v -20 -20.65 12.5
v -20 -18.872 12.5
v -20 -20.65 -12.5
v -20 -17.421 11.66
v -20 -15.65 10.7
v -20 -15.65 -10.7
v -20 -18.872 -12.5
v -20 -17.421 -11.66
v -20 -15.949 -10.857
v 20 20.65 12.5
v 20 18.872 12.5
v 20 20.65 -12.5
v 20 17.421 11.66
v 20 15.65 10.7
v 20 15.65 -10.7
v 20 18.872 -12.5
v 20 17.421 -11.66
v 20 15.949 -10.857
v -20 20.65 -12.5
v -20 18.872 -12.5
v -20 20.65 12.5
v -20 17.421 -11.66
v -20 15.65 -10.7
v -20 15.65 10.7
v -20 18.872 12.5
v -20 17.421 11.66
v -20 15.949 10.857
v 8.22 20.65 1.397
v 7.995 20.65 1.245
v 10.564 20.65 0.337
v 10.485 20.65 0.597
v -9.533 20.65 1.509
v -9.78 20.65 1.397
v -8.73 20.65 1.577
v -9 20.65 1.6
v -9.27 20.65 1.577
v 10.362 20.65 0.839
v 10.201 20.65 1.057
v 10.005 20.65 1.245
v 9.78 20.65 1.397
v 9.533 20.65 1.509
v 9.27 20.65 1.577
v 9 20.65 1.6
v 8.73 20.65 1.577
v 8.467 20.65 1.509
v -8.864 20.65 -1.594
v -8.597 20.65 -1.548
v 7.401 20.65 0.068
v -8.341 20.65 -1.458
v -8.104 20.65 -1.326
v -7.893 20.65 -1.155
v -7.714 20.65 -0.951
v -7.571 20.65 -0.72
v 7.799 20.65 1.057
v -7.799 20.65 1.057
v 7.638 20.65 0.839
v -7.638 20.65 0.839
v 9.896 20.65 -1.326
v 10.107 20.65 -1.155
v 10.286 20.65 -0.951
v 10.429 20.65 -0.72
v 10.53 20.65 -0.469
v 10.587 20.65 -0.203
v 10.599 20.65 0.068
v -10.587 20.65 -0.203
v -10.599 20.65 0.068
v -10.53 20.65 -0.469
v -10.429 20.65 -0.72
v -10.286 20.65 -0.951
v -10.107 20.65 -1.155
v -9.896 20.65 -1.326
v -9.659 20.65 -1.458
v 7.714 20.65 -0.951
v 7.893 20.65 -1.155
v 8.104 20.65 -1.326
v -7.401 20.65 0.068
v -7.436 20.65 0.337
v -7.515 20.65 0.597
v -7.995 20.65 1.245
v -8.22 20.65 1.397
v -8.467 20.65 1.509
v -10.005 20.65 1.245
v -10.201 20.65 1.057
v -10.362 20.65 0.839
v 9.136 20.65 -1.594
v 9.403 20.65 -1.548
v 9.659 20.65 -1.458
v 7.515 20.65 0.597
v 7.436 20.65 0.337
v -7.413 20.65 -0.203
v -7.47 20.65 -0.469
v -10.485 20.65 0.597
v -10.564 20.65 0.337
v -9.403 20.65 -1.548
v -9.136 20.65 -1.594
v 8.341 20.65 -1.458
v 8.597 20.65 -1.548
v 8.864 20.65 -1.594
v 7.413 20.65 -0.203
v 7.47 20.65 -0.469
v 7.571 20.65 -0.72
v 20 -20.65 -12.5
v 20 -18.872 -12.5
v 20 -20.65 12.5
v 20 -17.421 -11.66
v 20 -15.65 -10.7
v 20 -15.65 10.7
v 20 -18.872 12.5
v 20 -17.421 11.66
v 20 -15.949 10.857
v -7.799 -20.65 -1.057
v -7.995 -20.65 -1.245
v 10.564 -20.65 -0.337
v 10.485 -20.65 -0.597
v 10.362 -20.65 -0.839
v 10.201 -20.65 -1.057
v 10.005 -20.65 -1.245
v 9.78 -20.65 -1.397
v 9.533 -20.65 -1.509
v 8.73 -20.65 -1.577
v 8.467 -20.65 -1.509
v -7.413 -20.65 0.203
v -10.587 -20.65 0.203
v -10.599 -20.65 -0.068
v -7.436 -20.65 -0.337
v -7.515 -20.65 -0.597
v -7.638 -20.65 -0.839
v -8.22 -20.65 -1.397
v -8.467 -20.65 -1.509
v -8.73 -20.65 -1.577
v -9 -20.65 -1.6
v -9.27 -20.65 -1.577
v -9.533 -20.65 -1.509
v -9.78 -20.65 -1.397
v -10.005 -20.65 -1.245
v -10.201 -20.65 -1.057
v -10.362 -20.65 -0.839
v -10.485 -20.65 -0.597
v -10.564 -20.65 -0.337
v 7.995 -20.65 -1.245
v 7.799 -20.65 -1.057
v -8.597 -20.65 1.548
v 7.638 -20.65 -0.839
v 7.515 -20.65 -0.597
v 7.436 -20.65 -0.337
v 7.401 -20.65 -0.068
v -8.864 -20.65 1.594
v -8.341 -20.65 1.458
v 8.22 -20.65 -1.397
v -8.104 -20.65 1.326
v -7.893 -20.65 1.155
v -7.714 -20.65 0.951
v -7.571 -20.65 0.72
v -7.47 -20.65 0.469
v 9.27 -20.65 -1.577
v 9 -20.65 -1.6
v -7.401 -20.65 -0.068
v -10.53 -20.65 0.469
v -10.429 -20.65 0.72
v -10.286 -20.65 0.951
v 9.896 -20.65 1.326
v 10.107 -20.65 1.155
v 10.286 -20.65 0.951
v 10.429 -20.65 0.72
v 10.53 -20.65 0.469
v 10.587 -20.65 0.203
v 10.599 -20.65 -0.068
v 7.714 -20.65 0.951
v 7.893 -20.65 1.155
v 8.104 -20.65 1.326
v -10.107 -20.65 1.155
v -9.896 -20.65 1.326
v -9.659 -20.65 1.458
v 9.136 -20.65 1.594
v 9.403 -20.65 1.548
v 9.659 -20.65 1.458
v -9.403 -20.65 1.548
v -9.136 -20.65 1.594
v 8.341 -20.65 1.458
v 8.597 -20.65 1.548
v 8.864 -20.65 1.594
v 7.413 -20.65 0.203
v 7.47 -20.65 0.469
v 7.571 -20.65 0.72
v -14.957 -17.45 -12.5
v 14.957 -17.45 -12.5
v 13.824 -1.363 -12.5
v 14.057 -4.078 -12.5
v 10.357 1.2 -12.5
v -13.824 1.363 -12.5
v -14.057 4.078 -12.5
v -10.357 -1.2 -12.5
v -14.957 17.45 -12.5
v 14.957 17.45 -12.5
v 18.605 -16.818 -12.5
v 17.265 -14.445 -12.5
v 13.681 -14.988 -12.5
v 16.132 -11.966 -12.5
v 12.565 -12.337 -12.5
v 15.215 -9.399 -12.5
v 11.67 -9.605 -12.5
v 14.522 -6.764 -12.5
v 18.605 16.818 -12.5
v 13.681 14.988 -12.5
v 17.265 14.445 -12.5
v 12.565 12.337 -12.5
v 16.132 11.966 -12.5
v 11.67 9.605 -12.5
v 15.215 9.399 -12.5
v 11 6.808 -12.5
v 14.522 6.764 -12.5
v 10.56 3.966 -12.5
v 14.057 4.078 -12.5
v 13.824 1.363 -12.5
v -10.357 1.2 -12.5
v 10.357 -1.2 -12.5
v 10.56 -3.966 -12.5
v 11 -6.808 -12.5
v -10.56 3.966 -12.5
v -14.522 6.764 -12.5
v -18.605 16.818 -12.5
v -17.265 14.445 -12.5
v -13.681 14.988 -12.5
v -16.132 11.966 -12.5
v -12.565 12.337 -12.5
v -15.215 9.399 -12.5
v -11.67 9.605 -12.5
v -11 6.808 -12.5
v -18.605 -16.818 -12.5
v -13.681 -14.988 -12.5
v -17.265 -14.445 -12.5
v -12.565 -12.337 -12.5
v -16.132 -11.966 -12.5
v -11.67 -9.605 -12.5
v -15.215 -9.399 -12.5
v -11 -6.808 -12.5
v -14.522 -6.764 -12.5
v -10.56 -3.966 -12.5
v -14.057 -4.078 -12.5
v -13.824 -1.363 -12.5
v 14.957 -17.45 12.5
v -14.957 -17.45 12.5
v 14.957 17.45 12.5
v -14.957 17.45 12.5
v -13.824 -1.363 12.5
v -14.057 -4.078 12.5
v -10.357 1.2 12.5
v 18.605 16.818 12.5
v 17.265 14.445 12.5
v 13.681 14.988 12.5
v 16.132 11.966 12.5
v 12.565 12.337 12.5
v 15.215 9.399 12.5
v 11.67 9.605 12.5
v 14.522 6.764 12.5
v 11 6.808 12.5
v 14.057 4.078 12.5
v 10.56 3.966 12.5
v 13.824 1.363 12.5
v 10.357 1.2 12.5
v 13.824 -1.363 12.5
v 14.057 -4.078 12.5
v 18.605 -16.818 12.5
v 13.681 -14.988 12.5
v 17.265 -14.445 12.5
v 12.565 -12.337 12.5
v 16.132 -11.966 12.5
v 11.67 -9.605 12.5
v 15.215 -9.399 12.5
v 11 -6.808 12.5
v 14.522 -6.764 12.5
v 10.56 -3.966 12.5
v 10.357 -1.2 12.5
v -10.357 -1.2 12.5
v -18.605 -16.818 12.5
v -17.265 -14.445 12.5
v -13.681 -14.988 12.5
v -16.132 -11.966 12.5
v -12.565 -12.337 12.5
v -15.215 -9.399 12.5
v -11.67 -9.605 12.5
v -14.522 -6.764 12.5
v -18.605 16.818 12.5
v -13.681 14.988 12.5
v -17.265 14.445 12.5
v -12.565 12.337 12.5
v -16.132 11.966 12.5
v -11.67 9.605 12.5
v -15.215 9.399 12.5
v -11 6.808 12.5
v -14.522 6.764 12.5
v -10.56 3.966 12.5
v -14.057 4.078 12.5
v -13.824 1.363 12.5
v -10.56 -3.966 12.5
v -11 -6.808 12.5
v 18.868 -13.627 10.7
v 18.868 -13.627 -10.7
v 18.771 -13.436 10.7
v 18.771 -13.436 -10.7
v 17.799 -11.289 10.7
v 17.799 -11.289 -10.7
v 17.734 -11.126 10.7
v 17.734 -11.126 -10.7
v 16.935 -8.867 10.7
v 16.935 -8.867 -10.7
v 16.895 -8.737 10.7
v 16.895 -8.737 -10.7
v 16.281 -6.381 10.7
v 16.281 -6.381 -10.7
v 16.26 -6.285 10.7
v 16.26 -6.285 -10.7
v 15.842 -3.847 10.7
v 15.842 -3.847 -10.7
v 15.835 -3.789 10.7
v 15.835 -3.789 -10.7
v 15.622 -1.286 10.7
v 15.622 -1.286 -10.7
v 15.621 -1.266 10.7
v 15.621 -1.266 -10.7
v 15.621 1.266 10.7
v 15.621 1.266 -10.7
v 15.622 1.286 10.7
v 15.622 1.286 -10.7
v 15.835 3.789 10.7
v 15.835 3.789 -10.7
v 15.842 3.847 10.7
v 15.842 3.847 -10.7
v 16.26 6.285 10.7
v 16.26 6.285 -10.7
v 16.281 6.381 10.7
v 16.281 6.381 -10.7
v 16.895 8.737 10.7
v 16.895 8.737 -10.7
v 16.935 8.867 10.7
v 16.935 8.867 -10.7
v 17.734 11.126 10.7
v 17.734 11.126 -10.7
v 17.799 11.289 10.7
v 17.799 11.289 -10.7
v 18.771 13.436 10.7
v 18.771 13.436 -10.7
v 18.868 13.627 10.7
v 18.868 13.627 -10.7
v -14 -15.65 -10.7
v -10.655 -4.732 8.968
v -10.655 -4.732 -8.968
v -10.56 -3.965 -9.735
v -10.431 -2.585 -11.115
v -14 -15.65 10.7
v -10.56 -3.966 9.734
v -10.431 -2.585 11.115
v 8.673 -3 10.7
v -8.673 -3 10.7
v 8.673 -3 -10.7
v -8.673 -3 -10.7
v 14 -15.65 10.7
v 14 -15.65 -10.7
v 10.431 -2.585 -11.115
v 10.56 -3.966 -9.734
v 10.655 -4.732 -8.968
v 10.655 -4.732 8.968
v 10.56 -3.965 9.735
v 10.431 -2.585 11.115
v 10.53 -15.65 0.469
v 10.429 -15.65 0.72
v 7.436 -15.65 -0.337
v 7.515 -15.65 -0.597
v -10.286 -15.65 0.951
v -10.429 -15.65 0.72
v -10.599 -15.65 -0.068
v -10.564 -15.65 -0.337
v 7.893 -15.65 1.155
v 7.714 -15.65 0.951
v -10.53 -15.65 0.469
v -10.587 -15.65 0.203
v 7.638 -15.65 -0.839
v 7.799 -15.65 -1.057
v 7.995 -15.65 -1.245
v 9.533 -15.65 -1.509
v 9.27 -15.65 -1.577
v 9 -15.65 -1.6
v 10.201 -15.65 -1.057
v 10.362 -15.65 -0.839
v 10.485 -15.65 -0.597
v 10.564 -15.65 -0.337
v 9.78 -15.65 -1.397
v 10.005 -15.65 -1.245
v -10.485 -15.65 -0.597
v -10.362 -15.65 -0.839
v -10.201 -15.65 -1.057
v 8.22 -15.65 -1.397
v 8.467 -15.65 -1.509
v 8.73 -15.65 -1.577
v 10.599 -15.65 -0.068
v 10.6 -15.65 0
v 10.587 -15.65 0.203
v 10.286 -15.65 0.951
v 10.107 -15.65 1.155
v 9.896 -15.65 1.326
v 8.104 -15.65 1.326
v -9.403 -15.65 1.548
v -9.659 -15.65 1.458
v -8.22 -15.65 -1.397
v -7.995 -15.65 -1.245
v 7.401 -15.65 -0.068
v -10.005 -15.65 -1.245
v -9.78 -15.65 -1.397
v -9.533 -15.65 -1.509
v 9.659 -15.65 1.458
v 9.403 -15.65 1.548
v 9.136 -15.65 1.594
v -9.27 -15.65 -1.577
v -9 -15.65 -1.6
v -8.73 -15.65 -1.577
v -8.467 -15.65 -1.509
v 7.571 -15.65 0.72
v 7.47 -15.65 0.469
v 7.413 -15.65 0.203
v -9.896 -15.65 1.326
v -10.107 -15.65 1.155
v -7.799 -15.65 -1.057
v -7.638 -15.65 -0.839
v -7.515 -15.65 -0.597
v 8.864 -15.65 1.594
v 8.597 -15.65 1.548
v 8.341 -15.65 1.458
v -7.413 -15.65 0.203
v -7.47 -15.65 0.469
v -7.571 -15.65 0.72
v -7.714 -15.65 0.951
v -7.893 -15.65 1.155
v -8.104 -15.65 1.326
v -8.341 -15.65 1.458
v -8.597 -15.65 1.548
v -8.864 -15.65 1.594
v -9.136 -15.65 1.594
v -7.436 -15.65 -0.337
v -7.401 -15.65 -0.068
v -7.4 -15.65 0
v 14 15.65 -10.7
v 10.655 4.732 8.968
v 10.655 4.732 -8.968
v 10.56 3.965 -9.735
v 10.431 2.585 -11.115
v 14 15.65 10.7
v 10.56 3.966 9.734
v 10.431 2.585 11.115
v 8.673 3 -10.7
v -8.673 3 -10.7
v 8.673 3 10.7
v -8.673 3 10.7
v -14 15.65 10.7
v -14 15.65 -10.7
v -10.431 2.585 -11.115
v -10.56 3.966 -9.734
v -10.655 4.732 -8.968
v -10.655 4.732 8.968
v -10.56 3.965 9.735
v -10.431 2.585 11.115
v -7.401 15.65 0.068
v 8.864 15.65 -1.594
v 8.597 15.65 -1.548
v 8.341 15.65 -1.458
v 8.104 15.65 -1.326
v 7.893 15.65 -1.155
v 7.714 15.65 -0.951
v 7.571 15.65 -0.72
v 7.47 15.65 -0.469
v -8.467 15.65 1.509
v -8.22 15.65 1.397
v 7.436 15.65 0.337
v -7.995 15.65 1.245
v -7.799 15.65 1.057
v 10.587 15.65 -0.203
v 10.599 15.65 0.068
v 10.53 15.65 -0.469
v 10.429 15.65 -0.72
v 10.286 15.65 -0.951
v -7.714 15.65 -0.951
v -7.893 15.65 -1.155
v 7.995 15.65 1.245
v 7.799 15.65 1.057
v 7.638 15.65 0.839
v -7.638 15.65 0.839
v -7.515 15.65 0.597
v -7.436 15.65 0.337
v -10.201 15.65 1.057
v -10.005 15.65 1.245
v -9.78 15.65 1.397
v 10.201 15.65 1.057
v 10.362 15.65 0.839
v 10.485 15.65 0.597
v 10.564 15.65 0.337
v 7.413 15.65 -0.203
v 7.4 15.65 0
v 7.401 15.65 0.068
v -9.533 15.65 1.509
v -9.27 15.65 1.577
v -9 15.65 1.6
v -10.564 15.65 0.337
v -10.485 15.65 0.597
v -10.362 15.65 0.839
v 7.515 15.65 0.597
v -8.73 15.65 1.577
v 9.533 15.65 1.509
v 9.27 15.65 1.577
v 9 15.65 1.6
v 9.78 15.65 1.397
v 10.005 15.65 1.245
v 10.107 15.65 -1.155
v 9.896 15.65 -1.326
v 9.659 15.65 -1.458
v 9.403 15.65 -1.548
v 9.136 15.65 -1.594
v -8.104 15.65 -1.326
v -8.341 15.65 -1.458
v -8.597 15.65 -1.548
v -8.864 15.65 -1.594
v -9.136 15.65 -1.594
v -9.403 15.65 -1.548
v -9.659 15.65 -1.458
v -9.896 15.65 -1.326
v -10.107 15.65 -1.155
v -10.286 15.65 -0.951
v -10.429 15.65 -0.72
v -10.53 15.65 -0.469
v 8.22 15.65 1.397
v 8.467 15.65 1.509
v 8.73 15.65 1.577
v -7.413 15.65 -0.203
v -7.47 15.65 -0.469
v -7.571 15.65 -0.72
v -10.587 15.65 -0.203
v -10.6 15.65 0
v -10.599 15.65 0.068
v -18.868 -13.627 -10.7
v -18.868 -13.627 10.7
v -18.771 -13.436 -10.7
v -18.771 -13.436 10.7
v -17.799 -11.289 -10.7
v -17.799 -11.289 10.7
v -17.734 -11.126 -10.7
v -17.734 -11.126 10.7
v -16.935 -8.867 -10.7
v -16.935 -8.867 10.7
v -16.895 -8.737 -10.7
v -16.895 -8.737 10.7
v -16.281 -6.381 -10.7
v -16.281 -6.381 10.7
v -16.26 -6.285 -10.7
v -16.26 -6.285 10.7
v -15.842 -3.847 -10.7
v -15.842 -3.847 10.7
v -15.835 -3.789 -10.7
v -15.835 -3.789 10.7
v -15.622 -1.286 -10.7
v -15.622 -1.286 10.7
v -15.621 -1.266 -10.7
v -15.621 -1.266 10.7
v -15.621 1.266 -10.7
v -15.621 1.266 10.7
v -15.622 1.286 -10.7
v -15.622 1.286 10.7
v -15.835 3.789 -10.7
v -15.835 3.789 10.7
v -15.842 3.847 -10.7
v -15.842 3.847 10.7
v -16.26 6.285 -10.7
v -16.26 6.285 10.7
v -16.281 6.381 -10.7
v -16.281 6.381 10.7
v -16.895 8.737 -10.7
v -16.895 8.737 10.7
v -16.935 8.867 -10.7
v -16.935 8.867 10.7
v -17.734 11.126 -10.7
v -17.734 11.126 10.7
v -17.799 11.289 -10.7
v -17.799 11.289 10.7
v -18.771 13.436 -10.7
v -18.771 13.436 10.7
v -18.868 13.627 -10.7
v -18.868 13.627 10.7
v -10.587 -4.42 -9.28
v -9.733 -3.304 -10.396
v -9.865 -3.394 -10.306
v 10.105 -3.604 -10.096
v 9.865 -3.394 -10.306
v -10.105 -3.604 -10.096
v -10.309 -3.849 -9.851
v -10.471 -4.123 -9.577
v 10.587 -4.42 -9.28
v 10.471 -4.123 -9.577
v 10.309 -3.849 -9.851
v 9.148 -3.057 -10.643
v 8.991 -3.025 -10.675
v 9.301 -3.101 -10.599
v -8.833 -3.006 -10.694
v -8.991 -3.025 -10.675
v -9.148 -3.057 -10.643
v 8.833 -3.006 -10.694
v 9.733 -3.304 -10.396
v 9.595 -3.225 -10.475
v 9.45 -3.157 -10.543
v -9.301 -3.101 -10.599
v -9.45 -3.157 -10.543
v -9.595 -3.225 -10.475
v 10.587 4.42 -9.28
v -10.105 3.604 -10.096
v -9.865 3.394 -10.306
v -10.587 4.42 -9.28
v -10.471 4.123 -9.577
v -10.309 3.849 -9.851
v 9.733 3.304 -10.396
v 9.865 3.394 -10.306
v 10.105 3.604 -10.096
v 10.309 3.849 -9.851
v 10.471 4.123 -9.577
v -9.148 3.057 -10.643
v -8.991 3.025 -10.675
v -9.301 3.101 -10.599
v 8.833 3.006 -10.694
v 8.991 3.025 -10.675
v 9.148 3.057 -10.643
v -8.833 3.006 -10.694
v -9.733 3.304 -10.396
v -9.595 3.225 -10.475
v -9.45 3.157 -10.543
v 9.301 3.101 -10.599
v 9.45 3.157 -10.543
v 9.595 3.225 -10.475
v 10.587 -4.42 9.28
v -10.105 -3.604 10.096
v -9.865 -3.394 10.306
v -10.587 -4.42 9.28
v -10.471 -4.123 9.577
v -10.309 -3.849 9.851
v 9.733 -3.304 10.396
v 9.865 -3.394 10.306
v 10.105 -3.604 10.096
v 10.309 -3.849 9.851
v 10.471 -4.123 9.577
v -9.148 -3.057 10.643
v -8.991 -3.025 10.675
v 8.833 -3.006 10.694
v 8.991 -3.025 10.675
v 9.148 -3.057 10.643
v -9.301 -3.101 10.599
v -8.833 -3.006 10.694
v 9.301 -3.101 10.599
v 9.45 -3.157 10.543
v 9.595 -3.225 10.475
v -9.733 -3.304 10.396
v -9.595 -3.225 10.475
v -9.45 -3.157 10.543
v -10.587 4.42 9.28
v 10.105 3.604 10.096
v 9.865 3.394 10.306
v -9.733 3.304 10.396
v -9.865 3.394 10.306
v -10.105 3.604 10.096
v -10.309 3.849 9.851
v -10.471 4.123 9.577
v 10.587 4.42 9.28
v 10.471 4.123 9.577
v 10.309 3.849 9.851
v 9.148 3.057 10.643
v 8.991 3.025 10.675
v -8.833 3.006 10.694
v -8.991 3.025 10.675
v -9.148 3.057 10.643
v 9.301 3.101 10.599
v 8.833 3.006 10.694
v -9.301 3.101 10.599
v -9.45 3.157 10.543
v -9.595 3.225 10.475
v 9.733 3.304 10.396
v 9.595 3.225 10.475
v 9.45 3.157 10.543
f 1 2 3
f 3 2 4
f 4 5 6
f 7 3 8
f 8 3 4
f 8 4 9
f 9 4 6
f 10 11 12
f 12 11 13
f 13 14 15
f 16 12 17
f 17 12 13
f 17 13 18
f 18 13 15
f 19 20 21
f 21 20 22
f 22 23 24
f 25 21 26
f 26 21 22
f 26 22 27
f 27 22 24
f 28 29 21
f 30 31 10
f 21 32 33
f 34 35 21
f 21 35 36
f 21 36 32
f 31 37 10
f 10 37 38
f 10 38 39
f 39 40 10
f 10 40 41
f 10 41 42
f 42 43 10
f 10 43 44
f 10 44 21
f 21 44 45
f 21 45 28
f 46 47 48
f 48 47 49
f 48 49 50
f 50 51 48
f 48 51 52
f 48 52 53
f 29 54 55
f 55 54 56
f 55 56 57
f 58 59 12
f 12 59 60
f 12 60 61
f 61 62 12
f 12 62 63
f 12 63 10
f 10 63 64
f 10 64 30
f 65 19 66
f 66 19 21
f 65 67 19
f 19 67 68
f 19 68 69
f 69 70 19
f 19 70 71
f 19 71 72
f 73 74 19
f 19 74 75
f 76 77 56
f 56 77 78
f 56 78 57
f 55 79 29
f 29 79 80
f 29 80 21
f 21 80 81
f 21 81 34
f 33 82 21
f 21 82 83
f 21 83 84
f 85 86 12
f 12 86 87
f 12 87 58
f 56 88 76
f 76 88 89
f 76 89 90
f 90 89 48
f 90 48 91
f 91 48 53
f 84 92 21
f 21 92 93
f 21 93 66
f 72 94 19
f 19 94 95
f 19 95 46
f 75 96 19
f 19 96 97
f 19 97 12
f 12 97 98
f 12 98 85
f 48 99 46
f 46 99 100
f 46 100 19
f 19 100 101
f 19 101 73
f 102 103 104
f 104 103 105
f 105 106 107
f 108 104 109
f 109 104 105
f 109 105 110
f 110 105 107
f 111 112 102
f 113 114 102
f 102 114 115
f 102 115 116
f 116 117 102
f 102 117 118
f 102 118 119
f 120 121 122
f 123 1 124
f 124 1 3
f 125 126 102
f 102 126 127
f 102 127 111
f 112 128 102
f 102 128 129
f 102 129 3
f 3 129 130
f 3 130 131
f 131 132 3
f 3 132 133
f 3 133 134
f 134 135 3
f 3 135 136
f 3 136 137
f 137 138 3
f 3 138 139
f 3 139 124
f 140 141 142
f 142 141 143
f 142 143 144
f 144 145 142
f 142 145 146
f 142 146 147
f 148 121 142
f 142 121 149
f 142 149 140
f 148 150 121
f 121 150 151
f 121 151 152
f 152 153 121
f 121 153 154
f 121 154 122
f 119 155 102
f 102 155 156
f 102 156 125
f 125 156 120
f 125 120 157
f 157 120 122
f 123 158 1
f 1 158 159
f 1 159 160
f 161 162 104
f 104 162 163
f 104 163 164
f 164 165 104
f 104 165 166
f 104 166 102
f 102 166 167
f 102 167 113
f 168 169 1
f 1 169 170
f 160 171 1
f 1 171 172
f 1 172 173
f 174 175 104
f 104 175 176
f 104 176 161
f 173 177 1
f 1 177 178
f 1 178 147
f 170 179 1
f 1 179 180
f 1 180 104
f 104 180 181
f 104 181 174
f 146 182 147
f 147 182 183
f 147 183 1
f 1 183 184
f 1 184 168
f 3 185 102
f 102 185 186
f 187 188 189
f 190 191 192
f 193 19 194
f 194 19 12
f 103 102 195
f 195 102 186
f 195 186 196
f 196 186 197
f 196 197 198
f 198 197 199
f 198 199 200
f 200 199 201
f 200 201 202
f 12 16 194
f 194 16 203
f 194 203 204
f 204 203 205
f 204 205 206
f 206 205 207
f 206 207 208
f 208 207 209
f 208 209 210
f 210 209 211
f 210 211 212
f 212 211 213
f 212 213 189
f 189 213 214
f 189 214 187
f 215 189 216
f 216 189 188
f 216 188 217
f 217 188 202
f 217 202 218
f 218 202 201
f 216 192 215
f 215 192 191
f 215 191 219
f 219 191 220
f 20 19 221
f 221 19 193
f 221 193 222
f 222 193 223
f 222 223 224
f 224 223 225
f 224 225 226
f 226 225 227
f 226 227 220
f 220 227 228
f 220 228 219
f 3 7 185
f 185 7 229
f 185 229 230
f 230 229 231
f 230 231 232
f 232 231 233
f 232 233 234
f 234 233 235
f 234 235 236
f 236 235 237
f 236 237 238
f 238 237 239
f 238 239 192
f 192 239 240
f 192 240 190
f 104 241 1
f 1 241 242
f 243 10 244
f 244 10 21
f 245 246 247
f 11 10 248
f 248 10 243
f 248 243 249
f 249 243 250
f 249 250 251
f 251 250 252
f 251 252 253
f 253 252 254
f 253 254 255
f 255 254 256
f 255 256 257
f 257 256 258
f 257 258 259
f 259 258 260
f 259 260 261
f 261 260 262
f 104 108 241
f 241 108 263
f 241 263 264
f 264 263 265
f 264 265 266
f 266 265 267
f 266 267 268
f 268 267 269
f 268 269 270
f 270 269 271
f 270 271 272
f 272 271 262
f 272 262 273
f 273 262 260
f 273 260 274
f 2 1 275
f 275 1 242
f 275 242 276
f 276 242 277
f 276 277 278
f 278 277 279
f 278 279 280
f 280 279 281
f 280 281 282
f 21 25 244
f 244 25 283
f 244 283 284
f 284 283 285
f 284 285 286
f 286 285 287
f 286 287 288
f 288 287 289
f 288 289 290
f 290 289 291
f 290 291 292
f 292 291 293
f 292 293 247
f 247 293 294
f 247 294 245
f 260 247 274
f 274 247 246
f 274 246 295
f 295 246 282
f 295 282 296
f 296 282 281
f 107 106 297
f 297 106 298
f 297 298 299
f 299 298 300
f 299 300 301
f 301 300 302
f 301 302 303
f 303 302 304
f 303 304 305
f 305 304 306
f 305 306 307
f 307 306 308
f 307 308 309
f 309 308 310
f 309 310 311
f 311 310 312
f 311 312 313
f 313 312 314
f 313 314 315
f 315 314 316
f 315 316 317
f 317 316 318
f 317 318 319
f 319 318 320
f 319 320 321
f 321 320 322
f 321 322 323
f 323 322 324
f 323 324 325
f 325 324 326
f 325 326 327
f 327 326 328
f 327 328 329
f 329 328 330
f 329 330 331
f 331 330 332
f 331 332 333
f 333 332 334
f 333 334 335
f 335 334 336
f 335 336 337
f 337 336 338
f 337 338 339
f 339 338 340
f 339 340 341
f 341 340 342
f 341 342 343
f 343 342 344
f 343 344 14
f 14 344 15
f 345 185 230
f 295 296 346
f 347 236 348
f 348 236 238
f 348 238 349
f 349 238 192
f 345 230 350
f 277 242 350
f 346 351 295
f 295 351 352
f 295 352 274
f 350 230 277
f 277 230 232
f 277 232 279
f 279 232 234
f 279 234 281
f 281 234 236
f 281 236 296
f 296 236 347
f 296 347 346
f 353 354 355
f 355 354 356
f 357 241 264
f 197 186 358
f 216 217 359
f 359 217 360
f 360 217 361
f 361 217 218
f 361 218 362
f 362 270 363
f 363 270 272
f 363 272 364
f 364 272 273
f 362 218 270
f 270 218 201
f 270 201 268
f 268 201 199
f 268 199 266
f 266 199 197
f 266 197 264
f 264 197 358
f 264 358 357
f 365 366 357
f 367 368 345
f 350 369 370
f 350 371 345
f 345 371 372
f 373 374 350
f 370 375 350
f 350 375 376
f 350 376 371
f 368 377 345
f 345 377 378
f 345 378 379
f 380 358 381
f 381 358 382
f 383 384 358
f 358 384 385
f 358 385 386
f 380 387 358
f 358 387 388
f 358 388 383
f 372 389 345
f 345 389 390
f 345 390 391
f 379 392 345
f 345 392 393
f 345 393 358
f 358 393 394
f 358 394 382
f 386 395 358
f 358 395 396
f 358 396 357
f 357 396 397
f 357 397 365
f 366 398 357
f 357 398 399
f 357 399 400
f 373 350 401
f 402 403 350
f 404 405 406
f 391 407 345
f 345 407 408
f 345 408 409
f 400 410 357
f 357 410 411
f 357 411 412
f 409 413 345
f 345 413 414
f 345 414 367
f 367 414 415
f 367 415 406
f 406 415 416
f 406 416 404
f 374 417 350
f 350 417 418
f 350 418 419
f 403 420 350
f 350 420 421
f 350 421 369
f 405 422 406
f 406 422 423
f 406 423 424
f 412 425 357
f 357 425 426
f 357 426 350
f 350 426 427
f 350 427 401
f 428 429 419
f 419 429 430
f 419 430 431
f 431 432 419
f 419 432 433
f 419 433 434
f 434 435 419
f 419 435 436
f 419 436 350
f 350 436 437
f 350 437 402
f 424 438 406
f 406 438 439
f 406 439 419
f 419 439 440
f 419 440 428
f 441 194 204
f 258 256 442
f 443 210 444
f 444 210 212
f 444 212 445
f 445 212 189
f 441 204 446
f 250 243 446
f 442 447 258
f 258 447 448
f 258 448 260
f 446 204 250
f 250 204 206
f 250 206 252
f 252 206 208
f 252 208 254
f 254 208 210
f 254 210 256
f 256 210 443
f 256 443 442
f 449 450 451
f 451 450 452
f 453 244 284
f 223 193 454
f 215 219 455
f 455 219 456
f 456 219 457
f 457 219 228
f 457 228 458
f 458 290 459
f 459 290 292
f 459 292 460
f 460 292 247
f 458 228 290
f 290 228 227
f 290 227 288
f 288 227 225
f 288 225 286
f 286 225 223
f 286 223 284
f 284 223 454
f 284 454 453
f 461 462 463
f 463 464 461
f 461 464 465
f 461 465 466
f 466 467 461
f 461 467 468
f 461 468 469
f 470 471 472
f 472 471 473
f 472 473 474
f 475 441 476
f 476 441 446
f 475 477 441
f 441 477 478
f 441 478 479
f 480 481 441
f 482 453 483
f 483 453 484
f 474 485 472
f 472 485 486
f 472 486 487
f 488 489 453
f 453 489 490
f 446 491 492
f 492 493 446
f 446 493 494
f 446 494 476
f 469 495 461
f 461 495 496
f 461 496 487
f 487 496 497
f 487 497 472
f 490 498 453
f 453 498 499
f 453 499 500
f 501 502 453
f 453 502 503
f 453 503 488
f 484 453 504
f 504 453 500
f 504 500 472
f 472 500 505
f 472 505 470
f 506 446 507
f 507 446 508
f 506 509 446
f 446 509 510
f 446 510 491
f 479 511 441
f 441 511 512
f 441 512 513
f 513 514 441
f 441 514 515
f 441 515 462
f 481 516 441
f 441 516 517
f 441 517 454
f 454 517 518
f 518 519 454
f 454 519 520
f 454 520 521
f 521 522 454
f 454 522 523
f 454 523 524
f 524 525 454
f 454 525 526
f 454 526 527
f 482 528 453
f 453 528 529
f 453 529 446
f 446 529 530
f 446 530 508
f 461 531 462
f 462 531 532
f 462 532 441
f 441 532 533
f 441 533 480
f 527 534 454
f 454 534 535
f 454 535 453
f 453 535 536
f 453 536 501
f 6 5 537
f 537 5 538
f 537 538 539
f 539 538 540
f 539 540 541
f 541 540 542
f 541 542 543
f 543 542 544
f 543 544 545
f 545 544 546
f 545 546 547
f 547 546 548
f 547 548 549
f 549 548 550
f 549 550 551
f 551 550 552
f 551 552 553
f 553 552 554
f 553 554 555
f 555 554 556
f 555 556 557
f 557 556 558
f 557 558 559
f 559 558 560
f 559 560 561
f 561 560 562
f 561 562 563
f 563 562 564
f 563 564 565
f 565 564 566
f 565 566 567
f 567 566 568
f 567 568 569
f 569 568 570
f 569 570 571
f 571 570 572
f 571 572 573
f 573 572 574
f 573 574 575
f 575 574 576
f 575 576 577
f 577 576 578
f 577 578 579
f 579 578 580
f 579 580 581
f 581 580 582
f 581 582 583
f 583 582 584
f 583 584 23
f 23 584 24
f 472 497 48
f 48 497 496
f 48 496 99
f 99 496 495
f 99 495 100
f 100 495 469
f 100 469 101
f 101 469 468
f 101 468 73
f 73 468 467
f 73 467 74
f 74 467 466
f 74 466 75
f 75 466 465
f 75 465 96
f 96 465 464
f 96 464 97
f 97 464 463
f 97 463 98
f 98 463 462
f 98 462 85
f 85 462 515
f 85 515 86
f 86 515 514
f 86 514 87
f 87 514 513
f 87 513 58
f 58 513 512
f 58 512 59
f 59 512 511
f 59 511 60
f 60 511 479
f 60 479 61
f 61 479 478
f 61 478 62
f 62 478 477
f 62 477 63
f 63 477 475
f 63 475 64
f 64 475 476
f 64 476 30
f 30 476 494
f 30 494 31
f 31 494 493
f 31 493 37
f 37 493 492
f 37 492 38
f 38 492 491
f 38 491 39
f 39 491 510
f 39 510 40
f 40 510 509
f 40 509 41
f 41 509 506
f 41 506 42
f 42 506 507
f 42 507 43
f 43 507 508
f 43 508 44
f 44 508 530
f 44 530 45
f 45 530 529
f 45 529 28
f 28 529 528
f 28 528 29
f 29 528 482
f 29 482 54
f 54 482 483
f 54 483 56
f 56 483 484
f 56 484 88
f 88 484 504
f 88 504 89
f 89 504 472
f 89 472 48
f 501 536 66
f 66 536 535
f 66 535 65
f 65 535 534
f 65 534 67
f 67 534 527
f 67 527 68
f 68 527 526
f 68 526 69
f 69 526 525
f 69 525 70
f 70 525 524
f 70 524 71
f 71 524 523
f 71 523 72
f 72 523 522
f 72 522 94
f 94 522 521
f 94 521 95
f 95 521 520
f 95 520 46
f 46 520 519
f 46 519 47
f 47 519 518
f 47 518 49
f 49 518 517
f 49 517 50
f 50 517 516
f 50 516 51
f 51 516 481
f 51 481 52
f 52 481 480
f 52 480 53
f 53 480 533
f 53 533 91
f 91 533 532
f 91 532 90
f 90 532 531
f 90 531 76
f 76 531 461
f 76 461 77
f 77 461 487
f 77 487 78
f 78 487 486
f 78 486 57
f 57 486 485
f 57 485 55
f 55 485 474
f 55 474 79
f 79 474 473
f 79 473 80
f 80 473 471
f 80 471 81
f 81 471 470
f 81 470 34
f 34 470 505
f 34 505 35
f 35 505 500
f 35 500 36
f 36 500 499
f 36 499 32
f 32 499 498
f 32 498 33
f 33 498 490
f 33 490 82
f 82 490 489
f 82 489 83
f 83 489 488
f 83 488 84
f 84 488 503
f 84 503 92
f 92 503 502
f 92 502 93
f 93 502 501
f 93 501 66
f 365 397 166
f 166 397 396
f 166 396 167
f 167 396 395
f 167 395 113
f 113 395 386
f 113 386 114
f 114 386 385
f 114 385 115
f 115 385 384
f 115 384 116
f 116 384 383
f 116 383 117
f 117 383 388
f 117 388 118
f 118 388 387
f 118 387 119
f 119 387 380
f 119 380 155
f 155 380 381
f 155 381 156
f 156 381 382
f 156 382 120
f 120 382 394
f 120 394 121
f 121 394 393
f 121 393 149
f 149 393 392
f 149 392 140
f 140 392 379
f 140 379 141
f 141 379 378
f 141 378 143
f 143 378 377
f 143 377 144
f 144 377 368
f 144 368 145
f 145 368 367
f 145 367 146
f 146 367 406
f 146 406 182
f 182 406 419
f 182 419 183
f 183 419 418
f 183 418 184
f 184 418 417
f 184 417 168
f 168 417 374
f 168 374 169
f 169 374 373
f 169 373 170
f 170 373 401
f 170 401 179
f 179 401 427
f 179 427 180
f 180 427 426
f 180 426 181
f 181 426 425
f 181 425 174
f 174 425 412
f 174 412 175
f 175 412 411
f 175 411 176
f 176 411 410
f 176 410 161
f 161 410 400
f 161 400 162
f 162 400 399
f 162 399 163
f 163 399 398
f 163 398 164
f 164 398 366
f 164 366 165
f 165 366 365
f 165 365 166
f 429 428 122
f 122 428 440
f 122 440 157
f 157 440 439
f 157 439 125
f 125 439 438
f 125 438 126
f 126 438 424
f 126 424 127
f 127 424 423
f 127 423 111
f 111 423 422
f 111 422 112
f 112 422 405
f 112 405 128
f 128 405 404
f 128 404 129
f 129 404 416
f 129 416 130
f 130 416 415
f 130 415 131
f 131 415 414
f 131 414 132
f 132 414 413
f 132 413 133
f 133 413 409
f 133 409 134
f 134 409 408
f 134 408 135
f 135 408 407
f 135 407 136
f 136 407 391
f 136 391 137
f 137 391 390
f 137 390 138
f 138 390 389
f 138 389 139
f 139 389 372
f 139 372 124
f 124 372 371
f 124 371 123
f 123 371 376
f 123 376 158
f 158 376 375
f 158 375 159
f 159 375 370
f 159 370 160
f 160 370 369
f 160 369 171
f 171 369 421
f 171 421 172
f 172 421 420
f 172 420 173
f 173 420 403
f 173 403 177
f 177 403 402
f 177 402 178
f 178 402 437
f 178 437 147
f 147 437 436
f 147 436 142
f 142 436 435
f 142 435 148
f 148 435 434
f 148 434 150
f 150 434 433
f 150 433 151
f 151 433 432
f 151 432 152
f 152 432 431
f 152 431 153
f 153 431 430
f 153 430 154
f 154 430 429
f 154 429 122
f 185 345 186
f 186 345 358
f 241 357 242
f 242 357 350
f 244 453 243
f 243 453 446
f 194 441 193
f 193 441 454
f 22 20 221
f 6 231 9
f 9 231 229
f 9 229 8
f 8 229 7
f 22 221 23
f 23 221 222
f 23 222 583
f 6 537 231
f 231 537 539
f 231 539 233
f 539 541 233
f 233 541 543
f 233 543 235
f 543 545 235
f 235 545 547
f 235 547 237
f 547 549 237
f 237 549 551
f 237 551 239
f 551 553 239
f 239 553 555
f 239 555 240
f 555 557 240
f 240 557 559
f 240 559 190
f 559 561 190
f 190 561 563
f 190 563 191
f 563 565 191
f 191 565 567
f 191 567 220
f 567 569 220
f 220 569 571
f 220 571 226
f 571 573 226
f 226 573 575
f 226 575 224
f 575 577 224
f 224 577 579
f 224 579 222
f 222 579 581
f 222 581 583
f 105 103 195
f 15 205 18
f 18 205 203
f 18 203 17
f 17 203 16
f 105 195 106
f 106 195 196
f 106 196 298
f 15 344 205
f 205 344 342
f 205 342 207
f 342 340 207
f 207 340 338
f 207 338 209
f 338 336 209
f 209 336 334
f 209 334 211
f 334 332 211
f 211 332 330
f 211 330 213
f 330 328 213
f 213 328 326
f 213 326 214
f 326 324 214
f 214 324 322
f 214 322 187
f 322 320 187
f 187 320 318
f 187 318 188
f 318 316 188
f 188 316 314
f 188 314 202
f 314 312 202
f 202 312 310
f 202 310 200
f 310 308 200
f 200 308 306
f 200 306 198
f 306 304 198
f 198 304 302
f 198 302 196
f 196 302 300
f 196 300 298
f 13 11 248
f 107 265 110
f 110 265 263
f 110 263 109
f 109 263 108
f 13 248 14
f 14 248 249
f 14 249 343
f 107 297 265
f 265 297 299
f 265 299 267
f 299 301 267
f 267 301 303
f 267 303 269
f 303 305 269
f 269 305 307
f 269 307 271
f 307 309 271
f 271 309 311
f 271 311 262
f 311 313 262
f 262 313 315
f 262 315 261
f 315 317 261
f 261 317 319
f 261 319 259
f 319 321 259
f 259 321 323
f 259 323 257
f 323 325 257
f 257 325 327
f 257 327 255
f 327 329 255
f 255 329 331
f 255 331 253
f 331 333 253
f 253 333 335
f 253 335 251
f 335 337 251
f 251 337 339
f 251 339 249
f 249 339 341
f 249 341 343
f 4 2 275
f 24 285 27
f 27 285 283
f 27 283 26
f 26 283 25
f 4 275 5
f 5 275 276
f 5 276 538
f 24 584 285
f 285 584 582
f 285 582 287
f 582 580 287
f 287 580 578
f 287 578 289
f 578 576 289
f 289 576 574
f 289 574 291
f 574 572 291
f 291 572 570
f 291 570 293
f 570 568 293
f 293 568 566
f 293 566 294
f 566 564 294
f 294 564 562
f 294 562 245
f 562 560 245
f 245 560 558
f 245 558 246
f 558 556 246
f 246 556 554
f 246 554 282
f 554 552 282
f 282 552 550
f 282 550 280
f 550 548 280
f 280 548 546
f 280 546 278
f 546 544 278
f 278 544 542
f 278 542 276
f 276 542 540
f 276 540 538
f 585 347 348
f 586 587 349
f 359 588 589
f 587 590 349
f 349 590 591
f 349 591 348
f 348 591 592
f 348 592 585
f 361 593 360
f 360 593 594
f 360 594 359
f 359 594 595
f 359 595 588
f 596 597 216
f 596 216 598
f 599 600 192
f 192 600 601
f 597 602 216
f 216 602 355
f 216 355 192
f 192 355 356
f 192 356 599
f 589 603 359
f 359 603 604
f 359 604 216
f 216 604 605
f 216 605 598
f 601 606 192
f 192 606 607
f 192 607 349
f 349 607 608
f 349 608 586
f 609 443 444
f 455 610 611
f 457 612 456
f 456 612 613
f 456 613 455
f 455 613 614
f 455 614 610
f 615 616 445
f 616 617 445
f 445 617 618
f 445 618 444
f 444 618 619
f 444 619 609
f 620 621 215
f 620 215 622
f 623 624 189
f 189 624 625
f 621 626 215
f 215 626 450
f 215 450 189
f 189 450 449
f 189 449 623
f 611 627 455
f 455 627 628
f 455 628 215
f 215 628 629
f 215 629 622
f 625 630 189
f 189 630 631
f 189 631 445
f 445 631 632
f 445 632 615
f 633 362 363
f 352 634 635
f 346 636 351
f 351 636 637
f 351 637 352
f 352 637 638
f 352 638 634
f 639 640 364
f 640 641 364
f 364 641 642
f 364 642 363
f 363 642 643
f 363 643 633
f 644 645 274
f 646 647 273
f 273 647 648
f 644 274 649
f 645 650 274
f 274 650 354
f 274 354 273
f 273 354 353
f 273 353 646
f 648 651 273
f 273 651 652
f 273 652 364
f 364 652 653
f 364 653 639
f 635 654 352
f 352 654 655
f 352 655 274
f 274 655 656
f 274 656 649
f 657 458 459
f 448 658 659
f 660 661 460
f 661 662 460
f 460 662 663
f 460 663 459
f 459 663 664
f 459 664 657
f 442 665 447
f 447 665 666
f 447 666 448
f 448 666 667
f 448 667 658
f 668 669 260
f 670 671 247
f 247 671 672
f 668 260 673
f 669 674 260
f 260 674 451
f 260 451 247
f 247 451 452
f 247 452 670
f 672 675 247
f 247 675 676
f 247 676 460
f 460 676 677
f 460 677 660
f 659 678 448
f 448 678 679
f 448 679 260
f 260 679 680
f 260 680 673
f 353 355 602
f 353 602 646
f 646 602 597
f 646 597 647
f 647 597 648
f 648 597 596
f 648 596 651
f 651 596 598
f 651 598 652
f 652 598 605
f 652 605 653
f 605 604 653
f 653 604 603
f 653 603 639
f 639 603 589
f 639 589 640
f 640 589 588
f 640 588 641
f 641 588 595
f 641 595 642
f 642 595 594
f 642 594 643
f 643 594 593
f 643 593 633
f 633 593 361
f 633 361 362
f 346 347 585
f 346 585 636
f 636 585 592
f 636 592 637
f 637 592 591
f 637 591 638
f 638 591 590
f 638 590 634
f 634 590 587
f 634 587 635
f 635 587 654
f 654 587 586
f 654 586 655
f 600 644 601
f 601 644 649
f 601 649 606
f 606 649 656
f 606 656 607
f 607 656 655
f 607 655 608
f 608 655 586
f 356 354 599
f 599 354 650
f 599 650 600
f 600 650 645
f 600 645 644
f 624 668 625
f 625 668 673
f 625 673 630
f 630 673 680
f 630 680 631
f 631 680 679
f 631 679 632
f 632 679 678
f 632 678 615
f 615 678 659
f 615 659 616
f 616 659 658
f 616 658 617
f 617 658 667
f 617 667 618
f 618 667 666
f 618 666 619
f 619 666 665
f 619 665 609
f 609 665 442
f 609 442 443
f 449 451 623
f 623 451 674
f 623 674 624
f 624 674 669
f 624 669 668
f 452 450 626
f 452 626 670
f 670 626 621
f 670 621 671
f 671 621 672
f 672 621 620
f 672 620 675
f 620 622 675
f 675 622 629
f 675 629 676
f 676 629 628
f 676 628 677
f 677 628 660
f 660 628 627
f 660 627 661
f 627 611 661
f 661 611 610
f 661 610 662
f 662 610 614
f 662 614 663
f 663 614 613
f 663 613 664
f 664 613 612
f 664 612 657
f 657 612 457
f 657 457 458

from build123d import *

# Parameters (mm, degrees)
BOSS_EXTRU_1_DEPTH      = 12.5
BOSS_EXTRU_1_DEPTH_BACK = 12.5
ESQUISSE1_W             = 40
ESQUISSE1_H             = 41.3
ENL_V_MAT_EXTRU_1_REACH = 40.098
ENL_V_MAT_EXTRU_2_REACH = 49.56
ESQUISSE3_R             = 1.6
ENL_V_MAT_EXTRU_3_REACH = 49.56
ESQUISSE4_R             = 1.6
CHANFREIN7_SIZE         = 1.8
CONG_4_R                = 2


with BuildPart() as part:
    # Esquisse1 → Boss.-Extru.1 (new, two sides: drawn at the far end of the back side and taken through both)
    with BuildSketch(Plane.XY.offset(-BOSS_EXTRU_1_DEPTH_BACK)):
        Rectangle(ESQUISSE1_W, ESQUISSE1_H)
    extrude(amount=BOSS_EXTRU_1_DEPTH + BOSS_EXTRU_1_DEPTH_BACK)

    # Esquisse2 → Enlèv. mat.-Extru.1 (cut, up to next)
    with BuildSketch(Plane.XY.offset(12.5), mode=Mode.PRIVATE) as enl_v_mat_extru_1_sk1:
        with BuildLine():
            Line((-20, 15.65), (-20, -15.65))
            ThreePointArc((-20, -15.65), (-15.594481827, 0), (-20, 15.65))
        make_face()
    enl_v_mat_extru_1_tool1 = extrude(enl_v_mat_extru_1_sk1.sketch, amount=-ENL_V_MAT_EXTRU_1_REACH, mode=Mode.PRIVATE) & part.part
    # Esquisse2 → Enlèv. mat.-Extru.1 (cut, up to next)
    with BuildSketch(Plane.XY.offset(12.5), mode=Mode.PRIVATE) as enl_v_mat_extru_1_sk2:
        with BuildLine():
            Line((20, 15.65), (20, -15.65))
            ThreePointArc((20, -15.65), (15.594481827, 0), (20, 15.65))
        make_face()
    enl_v_mat_extru_1_tool2 = extrude(enl_v_mat_extru_1_sk2.sketch, amount=-ENL_V_MAT_EXTRU_1_REACH, mode=Mode.PRIVATE) & part.part
    # Esquisse2 → Enlèv. mat.-Extru.1 (cut, up to next)
    with BuildSketch(Plane.XY.offset(12.5), mode=Mode.PRIVATE) as enl_v_mat_extru_1_sk3:
        with BuildLine():
            Line((-14, -15.65), (14, -15.65))
            ThreePointArc((14, -15.65), (11.637851253, -9.491102252), (10.46424155, -3))
            Line((10.46424155, -3), (-10.46424155, -3))
            ThreePointArc((-10.46424155, -3), (-11.637851253, -9.491102252), (-14, -15.65))
        make_face()
    enl_v_mat_extru_1_tool3 = extrude(enl_v_mat_extru_1_sk3.sketch, amount=-ENL_V_MAT_EXTRU_1_REACH, mode=Mode.PRIVATE) & part.part
    # Esquisse2 → Enlèv. mat.-Extru.1 (cut, up to next)
    with BuildSketch(Plane.XY.offset(12.5), mode=Mode.PRIVATE) as enl_v_mat_extru_1_sk4:
        with BuildLine():
            Line((-14, 15.65), (14, 15.65))
            ThreePointArc((14, 15.65), (11.637851253, 9.491102252), (10.46424155, 3))
            Line((10.46424155, 3), (-10.46424155, 3))
            ThreePointArc((-10.46424155, 3), (-11.637851253, 9.491102252), (-14, 15.65))
        make_face()
    enl_v_mat_extru_1_tool4 = extrude(enl_v_mat_extru_1_sk4.sketch, amount=-ENL_V_MAT_EXTRU_1_REACH, mode=Mode.PRIVATE) & part.part
    add(enl_v_mat_extru_1_tool1.solids().sort_by_distance((-18.226209, 0, 12.5))[0], mode=Mode.SUBTRACT)
    add(enl_v_mat_extru_1_tool2.solids().sort_by_distance((18.226209, 0, 12.5))[0], mode=Mode.SUBTRACT)
    add(enl_v_mat_extru_1_tool3.solids().sort_by_distance((0, -9.638348, 12.5))[0], mode=Mode.SUBTRACT)
    add(enl_v_mat_extru_1_tool4.solids().sort_by_distance((0, 9.638348, 12.5))[0], mode=Mode.SUBTRACT)

    # Esquisse3 → Enlèv. mat.-Extru.2 (cut, up to next)
    with BuildSketch(Plane(origin=(0, 20.65, 0), x_dir=(1, 0, 0), z_dir=(0, 1, 0)), mode=Mode.PRIVATE) as enl_v_mat_extru_2_sk1:
        with Locations((-9, 0)):
            Circle(ESQUISSE3_R)
    enl_v_mat_extru_2_tool1 = extrude(enl_v_mat_extru_2_sk1.sketch, amount=-ENL_V_MAT_EXTRU_2_REACH, mode=Mode.PRIVATE) & part.part
    # Esquisse3 → Enlèv. mat.-Extru.2 (cut, up to next)
    with BuildSketch(Plane(origin=(0, 20.65, 0), x_dir=(1, 0, 0), z_dir=(0, 1, 0)), mode=Mode.PRIVATE) as enl_v_mat_extru_2_sk2:
        with Locations((9, 0)):
            Circle(ESQUISSE3_R)
    enl_v_mat_extru_2_tool2 = extrude(enl_v_mat_extru_2_sk2.sketch, amount=-ENL_V_MAT_EXTRU_2_REACH, mode=Mode.PRIVATE) & part.part
    add(enl_v_mat_extru_2_tool1.solids().sort_by_distance((-9, 20.65, 0))[0], mode=Mode.SUBTRACT)
    add(enl_v_mat_extru_2_tool2.solids().sort_by_distance((9, 20.65, 0))[0], mode=Mode.SUBTRACT)

    # Esquisse4 → Enlèv. mat.-Extru.3 (cut, up to next)
    with BuildSketch(Plane.XZ.offset(20.65), mode=Mode.PRIVATE) as enl_v_mat_extru_3_sk1:
        with Locations((-9, 0)):
            Circle(ESQUISSE4_R)
    enl_v_mat_extru_3_tool1 = extrude(enl_v_mat_extru_3_sk1.sketch, amount=-ENL_V_MAT_EXTRU_3_REACH, mode=Mode.PRIVATE) & part.part
    # Esquisse4 → Enlèv. mat.-Extru.3 (cut, up to next)
    with BuildSketch(Plane.XZ.offset(20.65), mode=Mode.PRIVATE) as enl_v_mat_extru_3_sk2:
        with Locations((9, 0)):
            Circle(ESQUISSE4_R)
    enl_v_mat_extru_3_tool2 = extrude(enl_v_mat_extru_3_sk2.sketch, amount=-ENL_V_MAT_EXTRU_3_REACH, mode=Mode.PRIVATE) & part.part
    add(enl_v_mat_extru_3_tool1.solids().sort_by_distance((-9, -20.65, 0))[0], mode=Mode.SUBTRACT)
    add(enl_v_mat_extru_3_tool2.solids().sort_by_distance((9, -20.65, 0))[0], mode=Mode.SUBTRACT)

    # Chanfrein7
    chanfrein7_edges = [part.edges().sort_by_distance(p)[0] for p in [
        (-15.594481827, 0, -12.5),
        (15.594481827, 0, -12.5),
        (15.594481827, 0, 12.5),
        (-15.594481827, 0, 12.5),
        (0, -3, -12.5),
        (0, 3, -12.5),
        (0, -3, 12.5),
        (0, 3, 12.5),
        (0, 15.65, 12.5),
        (0, -15.65, 12.5),
        (0, -15.65, -12.5),
        (0, 15.65, -12.5),
    ]]
    chamfer(chanfrein7_edges, length=CHANFREIN7_SIZE)

    # Congé4
    cong_4_edges = [part.edges().sort_by_distance(p)[0] for p in [
        (10.46424155, 3, 0),
        (-10.46424155, 3, 0),
        (10.46424155, -3, 0),
        (-10.46424155, -3, 0),
    ]]
    fillet(cong_4_edges, radius=CONG_4_R)


solid = part.part
